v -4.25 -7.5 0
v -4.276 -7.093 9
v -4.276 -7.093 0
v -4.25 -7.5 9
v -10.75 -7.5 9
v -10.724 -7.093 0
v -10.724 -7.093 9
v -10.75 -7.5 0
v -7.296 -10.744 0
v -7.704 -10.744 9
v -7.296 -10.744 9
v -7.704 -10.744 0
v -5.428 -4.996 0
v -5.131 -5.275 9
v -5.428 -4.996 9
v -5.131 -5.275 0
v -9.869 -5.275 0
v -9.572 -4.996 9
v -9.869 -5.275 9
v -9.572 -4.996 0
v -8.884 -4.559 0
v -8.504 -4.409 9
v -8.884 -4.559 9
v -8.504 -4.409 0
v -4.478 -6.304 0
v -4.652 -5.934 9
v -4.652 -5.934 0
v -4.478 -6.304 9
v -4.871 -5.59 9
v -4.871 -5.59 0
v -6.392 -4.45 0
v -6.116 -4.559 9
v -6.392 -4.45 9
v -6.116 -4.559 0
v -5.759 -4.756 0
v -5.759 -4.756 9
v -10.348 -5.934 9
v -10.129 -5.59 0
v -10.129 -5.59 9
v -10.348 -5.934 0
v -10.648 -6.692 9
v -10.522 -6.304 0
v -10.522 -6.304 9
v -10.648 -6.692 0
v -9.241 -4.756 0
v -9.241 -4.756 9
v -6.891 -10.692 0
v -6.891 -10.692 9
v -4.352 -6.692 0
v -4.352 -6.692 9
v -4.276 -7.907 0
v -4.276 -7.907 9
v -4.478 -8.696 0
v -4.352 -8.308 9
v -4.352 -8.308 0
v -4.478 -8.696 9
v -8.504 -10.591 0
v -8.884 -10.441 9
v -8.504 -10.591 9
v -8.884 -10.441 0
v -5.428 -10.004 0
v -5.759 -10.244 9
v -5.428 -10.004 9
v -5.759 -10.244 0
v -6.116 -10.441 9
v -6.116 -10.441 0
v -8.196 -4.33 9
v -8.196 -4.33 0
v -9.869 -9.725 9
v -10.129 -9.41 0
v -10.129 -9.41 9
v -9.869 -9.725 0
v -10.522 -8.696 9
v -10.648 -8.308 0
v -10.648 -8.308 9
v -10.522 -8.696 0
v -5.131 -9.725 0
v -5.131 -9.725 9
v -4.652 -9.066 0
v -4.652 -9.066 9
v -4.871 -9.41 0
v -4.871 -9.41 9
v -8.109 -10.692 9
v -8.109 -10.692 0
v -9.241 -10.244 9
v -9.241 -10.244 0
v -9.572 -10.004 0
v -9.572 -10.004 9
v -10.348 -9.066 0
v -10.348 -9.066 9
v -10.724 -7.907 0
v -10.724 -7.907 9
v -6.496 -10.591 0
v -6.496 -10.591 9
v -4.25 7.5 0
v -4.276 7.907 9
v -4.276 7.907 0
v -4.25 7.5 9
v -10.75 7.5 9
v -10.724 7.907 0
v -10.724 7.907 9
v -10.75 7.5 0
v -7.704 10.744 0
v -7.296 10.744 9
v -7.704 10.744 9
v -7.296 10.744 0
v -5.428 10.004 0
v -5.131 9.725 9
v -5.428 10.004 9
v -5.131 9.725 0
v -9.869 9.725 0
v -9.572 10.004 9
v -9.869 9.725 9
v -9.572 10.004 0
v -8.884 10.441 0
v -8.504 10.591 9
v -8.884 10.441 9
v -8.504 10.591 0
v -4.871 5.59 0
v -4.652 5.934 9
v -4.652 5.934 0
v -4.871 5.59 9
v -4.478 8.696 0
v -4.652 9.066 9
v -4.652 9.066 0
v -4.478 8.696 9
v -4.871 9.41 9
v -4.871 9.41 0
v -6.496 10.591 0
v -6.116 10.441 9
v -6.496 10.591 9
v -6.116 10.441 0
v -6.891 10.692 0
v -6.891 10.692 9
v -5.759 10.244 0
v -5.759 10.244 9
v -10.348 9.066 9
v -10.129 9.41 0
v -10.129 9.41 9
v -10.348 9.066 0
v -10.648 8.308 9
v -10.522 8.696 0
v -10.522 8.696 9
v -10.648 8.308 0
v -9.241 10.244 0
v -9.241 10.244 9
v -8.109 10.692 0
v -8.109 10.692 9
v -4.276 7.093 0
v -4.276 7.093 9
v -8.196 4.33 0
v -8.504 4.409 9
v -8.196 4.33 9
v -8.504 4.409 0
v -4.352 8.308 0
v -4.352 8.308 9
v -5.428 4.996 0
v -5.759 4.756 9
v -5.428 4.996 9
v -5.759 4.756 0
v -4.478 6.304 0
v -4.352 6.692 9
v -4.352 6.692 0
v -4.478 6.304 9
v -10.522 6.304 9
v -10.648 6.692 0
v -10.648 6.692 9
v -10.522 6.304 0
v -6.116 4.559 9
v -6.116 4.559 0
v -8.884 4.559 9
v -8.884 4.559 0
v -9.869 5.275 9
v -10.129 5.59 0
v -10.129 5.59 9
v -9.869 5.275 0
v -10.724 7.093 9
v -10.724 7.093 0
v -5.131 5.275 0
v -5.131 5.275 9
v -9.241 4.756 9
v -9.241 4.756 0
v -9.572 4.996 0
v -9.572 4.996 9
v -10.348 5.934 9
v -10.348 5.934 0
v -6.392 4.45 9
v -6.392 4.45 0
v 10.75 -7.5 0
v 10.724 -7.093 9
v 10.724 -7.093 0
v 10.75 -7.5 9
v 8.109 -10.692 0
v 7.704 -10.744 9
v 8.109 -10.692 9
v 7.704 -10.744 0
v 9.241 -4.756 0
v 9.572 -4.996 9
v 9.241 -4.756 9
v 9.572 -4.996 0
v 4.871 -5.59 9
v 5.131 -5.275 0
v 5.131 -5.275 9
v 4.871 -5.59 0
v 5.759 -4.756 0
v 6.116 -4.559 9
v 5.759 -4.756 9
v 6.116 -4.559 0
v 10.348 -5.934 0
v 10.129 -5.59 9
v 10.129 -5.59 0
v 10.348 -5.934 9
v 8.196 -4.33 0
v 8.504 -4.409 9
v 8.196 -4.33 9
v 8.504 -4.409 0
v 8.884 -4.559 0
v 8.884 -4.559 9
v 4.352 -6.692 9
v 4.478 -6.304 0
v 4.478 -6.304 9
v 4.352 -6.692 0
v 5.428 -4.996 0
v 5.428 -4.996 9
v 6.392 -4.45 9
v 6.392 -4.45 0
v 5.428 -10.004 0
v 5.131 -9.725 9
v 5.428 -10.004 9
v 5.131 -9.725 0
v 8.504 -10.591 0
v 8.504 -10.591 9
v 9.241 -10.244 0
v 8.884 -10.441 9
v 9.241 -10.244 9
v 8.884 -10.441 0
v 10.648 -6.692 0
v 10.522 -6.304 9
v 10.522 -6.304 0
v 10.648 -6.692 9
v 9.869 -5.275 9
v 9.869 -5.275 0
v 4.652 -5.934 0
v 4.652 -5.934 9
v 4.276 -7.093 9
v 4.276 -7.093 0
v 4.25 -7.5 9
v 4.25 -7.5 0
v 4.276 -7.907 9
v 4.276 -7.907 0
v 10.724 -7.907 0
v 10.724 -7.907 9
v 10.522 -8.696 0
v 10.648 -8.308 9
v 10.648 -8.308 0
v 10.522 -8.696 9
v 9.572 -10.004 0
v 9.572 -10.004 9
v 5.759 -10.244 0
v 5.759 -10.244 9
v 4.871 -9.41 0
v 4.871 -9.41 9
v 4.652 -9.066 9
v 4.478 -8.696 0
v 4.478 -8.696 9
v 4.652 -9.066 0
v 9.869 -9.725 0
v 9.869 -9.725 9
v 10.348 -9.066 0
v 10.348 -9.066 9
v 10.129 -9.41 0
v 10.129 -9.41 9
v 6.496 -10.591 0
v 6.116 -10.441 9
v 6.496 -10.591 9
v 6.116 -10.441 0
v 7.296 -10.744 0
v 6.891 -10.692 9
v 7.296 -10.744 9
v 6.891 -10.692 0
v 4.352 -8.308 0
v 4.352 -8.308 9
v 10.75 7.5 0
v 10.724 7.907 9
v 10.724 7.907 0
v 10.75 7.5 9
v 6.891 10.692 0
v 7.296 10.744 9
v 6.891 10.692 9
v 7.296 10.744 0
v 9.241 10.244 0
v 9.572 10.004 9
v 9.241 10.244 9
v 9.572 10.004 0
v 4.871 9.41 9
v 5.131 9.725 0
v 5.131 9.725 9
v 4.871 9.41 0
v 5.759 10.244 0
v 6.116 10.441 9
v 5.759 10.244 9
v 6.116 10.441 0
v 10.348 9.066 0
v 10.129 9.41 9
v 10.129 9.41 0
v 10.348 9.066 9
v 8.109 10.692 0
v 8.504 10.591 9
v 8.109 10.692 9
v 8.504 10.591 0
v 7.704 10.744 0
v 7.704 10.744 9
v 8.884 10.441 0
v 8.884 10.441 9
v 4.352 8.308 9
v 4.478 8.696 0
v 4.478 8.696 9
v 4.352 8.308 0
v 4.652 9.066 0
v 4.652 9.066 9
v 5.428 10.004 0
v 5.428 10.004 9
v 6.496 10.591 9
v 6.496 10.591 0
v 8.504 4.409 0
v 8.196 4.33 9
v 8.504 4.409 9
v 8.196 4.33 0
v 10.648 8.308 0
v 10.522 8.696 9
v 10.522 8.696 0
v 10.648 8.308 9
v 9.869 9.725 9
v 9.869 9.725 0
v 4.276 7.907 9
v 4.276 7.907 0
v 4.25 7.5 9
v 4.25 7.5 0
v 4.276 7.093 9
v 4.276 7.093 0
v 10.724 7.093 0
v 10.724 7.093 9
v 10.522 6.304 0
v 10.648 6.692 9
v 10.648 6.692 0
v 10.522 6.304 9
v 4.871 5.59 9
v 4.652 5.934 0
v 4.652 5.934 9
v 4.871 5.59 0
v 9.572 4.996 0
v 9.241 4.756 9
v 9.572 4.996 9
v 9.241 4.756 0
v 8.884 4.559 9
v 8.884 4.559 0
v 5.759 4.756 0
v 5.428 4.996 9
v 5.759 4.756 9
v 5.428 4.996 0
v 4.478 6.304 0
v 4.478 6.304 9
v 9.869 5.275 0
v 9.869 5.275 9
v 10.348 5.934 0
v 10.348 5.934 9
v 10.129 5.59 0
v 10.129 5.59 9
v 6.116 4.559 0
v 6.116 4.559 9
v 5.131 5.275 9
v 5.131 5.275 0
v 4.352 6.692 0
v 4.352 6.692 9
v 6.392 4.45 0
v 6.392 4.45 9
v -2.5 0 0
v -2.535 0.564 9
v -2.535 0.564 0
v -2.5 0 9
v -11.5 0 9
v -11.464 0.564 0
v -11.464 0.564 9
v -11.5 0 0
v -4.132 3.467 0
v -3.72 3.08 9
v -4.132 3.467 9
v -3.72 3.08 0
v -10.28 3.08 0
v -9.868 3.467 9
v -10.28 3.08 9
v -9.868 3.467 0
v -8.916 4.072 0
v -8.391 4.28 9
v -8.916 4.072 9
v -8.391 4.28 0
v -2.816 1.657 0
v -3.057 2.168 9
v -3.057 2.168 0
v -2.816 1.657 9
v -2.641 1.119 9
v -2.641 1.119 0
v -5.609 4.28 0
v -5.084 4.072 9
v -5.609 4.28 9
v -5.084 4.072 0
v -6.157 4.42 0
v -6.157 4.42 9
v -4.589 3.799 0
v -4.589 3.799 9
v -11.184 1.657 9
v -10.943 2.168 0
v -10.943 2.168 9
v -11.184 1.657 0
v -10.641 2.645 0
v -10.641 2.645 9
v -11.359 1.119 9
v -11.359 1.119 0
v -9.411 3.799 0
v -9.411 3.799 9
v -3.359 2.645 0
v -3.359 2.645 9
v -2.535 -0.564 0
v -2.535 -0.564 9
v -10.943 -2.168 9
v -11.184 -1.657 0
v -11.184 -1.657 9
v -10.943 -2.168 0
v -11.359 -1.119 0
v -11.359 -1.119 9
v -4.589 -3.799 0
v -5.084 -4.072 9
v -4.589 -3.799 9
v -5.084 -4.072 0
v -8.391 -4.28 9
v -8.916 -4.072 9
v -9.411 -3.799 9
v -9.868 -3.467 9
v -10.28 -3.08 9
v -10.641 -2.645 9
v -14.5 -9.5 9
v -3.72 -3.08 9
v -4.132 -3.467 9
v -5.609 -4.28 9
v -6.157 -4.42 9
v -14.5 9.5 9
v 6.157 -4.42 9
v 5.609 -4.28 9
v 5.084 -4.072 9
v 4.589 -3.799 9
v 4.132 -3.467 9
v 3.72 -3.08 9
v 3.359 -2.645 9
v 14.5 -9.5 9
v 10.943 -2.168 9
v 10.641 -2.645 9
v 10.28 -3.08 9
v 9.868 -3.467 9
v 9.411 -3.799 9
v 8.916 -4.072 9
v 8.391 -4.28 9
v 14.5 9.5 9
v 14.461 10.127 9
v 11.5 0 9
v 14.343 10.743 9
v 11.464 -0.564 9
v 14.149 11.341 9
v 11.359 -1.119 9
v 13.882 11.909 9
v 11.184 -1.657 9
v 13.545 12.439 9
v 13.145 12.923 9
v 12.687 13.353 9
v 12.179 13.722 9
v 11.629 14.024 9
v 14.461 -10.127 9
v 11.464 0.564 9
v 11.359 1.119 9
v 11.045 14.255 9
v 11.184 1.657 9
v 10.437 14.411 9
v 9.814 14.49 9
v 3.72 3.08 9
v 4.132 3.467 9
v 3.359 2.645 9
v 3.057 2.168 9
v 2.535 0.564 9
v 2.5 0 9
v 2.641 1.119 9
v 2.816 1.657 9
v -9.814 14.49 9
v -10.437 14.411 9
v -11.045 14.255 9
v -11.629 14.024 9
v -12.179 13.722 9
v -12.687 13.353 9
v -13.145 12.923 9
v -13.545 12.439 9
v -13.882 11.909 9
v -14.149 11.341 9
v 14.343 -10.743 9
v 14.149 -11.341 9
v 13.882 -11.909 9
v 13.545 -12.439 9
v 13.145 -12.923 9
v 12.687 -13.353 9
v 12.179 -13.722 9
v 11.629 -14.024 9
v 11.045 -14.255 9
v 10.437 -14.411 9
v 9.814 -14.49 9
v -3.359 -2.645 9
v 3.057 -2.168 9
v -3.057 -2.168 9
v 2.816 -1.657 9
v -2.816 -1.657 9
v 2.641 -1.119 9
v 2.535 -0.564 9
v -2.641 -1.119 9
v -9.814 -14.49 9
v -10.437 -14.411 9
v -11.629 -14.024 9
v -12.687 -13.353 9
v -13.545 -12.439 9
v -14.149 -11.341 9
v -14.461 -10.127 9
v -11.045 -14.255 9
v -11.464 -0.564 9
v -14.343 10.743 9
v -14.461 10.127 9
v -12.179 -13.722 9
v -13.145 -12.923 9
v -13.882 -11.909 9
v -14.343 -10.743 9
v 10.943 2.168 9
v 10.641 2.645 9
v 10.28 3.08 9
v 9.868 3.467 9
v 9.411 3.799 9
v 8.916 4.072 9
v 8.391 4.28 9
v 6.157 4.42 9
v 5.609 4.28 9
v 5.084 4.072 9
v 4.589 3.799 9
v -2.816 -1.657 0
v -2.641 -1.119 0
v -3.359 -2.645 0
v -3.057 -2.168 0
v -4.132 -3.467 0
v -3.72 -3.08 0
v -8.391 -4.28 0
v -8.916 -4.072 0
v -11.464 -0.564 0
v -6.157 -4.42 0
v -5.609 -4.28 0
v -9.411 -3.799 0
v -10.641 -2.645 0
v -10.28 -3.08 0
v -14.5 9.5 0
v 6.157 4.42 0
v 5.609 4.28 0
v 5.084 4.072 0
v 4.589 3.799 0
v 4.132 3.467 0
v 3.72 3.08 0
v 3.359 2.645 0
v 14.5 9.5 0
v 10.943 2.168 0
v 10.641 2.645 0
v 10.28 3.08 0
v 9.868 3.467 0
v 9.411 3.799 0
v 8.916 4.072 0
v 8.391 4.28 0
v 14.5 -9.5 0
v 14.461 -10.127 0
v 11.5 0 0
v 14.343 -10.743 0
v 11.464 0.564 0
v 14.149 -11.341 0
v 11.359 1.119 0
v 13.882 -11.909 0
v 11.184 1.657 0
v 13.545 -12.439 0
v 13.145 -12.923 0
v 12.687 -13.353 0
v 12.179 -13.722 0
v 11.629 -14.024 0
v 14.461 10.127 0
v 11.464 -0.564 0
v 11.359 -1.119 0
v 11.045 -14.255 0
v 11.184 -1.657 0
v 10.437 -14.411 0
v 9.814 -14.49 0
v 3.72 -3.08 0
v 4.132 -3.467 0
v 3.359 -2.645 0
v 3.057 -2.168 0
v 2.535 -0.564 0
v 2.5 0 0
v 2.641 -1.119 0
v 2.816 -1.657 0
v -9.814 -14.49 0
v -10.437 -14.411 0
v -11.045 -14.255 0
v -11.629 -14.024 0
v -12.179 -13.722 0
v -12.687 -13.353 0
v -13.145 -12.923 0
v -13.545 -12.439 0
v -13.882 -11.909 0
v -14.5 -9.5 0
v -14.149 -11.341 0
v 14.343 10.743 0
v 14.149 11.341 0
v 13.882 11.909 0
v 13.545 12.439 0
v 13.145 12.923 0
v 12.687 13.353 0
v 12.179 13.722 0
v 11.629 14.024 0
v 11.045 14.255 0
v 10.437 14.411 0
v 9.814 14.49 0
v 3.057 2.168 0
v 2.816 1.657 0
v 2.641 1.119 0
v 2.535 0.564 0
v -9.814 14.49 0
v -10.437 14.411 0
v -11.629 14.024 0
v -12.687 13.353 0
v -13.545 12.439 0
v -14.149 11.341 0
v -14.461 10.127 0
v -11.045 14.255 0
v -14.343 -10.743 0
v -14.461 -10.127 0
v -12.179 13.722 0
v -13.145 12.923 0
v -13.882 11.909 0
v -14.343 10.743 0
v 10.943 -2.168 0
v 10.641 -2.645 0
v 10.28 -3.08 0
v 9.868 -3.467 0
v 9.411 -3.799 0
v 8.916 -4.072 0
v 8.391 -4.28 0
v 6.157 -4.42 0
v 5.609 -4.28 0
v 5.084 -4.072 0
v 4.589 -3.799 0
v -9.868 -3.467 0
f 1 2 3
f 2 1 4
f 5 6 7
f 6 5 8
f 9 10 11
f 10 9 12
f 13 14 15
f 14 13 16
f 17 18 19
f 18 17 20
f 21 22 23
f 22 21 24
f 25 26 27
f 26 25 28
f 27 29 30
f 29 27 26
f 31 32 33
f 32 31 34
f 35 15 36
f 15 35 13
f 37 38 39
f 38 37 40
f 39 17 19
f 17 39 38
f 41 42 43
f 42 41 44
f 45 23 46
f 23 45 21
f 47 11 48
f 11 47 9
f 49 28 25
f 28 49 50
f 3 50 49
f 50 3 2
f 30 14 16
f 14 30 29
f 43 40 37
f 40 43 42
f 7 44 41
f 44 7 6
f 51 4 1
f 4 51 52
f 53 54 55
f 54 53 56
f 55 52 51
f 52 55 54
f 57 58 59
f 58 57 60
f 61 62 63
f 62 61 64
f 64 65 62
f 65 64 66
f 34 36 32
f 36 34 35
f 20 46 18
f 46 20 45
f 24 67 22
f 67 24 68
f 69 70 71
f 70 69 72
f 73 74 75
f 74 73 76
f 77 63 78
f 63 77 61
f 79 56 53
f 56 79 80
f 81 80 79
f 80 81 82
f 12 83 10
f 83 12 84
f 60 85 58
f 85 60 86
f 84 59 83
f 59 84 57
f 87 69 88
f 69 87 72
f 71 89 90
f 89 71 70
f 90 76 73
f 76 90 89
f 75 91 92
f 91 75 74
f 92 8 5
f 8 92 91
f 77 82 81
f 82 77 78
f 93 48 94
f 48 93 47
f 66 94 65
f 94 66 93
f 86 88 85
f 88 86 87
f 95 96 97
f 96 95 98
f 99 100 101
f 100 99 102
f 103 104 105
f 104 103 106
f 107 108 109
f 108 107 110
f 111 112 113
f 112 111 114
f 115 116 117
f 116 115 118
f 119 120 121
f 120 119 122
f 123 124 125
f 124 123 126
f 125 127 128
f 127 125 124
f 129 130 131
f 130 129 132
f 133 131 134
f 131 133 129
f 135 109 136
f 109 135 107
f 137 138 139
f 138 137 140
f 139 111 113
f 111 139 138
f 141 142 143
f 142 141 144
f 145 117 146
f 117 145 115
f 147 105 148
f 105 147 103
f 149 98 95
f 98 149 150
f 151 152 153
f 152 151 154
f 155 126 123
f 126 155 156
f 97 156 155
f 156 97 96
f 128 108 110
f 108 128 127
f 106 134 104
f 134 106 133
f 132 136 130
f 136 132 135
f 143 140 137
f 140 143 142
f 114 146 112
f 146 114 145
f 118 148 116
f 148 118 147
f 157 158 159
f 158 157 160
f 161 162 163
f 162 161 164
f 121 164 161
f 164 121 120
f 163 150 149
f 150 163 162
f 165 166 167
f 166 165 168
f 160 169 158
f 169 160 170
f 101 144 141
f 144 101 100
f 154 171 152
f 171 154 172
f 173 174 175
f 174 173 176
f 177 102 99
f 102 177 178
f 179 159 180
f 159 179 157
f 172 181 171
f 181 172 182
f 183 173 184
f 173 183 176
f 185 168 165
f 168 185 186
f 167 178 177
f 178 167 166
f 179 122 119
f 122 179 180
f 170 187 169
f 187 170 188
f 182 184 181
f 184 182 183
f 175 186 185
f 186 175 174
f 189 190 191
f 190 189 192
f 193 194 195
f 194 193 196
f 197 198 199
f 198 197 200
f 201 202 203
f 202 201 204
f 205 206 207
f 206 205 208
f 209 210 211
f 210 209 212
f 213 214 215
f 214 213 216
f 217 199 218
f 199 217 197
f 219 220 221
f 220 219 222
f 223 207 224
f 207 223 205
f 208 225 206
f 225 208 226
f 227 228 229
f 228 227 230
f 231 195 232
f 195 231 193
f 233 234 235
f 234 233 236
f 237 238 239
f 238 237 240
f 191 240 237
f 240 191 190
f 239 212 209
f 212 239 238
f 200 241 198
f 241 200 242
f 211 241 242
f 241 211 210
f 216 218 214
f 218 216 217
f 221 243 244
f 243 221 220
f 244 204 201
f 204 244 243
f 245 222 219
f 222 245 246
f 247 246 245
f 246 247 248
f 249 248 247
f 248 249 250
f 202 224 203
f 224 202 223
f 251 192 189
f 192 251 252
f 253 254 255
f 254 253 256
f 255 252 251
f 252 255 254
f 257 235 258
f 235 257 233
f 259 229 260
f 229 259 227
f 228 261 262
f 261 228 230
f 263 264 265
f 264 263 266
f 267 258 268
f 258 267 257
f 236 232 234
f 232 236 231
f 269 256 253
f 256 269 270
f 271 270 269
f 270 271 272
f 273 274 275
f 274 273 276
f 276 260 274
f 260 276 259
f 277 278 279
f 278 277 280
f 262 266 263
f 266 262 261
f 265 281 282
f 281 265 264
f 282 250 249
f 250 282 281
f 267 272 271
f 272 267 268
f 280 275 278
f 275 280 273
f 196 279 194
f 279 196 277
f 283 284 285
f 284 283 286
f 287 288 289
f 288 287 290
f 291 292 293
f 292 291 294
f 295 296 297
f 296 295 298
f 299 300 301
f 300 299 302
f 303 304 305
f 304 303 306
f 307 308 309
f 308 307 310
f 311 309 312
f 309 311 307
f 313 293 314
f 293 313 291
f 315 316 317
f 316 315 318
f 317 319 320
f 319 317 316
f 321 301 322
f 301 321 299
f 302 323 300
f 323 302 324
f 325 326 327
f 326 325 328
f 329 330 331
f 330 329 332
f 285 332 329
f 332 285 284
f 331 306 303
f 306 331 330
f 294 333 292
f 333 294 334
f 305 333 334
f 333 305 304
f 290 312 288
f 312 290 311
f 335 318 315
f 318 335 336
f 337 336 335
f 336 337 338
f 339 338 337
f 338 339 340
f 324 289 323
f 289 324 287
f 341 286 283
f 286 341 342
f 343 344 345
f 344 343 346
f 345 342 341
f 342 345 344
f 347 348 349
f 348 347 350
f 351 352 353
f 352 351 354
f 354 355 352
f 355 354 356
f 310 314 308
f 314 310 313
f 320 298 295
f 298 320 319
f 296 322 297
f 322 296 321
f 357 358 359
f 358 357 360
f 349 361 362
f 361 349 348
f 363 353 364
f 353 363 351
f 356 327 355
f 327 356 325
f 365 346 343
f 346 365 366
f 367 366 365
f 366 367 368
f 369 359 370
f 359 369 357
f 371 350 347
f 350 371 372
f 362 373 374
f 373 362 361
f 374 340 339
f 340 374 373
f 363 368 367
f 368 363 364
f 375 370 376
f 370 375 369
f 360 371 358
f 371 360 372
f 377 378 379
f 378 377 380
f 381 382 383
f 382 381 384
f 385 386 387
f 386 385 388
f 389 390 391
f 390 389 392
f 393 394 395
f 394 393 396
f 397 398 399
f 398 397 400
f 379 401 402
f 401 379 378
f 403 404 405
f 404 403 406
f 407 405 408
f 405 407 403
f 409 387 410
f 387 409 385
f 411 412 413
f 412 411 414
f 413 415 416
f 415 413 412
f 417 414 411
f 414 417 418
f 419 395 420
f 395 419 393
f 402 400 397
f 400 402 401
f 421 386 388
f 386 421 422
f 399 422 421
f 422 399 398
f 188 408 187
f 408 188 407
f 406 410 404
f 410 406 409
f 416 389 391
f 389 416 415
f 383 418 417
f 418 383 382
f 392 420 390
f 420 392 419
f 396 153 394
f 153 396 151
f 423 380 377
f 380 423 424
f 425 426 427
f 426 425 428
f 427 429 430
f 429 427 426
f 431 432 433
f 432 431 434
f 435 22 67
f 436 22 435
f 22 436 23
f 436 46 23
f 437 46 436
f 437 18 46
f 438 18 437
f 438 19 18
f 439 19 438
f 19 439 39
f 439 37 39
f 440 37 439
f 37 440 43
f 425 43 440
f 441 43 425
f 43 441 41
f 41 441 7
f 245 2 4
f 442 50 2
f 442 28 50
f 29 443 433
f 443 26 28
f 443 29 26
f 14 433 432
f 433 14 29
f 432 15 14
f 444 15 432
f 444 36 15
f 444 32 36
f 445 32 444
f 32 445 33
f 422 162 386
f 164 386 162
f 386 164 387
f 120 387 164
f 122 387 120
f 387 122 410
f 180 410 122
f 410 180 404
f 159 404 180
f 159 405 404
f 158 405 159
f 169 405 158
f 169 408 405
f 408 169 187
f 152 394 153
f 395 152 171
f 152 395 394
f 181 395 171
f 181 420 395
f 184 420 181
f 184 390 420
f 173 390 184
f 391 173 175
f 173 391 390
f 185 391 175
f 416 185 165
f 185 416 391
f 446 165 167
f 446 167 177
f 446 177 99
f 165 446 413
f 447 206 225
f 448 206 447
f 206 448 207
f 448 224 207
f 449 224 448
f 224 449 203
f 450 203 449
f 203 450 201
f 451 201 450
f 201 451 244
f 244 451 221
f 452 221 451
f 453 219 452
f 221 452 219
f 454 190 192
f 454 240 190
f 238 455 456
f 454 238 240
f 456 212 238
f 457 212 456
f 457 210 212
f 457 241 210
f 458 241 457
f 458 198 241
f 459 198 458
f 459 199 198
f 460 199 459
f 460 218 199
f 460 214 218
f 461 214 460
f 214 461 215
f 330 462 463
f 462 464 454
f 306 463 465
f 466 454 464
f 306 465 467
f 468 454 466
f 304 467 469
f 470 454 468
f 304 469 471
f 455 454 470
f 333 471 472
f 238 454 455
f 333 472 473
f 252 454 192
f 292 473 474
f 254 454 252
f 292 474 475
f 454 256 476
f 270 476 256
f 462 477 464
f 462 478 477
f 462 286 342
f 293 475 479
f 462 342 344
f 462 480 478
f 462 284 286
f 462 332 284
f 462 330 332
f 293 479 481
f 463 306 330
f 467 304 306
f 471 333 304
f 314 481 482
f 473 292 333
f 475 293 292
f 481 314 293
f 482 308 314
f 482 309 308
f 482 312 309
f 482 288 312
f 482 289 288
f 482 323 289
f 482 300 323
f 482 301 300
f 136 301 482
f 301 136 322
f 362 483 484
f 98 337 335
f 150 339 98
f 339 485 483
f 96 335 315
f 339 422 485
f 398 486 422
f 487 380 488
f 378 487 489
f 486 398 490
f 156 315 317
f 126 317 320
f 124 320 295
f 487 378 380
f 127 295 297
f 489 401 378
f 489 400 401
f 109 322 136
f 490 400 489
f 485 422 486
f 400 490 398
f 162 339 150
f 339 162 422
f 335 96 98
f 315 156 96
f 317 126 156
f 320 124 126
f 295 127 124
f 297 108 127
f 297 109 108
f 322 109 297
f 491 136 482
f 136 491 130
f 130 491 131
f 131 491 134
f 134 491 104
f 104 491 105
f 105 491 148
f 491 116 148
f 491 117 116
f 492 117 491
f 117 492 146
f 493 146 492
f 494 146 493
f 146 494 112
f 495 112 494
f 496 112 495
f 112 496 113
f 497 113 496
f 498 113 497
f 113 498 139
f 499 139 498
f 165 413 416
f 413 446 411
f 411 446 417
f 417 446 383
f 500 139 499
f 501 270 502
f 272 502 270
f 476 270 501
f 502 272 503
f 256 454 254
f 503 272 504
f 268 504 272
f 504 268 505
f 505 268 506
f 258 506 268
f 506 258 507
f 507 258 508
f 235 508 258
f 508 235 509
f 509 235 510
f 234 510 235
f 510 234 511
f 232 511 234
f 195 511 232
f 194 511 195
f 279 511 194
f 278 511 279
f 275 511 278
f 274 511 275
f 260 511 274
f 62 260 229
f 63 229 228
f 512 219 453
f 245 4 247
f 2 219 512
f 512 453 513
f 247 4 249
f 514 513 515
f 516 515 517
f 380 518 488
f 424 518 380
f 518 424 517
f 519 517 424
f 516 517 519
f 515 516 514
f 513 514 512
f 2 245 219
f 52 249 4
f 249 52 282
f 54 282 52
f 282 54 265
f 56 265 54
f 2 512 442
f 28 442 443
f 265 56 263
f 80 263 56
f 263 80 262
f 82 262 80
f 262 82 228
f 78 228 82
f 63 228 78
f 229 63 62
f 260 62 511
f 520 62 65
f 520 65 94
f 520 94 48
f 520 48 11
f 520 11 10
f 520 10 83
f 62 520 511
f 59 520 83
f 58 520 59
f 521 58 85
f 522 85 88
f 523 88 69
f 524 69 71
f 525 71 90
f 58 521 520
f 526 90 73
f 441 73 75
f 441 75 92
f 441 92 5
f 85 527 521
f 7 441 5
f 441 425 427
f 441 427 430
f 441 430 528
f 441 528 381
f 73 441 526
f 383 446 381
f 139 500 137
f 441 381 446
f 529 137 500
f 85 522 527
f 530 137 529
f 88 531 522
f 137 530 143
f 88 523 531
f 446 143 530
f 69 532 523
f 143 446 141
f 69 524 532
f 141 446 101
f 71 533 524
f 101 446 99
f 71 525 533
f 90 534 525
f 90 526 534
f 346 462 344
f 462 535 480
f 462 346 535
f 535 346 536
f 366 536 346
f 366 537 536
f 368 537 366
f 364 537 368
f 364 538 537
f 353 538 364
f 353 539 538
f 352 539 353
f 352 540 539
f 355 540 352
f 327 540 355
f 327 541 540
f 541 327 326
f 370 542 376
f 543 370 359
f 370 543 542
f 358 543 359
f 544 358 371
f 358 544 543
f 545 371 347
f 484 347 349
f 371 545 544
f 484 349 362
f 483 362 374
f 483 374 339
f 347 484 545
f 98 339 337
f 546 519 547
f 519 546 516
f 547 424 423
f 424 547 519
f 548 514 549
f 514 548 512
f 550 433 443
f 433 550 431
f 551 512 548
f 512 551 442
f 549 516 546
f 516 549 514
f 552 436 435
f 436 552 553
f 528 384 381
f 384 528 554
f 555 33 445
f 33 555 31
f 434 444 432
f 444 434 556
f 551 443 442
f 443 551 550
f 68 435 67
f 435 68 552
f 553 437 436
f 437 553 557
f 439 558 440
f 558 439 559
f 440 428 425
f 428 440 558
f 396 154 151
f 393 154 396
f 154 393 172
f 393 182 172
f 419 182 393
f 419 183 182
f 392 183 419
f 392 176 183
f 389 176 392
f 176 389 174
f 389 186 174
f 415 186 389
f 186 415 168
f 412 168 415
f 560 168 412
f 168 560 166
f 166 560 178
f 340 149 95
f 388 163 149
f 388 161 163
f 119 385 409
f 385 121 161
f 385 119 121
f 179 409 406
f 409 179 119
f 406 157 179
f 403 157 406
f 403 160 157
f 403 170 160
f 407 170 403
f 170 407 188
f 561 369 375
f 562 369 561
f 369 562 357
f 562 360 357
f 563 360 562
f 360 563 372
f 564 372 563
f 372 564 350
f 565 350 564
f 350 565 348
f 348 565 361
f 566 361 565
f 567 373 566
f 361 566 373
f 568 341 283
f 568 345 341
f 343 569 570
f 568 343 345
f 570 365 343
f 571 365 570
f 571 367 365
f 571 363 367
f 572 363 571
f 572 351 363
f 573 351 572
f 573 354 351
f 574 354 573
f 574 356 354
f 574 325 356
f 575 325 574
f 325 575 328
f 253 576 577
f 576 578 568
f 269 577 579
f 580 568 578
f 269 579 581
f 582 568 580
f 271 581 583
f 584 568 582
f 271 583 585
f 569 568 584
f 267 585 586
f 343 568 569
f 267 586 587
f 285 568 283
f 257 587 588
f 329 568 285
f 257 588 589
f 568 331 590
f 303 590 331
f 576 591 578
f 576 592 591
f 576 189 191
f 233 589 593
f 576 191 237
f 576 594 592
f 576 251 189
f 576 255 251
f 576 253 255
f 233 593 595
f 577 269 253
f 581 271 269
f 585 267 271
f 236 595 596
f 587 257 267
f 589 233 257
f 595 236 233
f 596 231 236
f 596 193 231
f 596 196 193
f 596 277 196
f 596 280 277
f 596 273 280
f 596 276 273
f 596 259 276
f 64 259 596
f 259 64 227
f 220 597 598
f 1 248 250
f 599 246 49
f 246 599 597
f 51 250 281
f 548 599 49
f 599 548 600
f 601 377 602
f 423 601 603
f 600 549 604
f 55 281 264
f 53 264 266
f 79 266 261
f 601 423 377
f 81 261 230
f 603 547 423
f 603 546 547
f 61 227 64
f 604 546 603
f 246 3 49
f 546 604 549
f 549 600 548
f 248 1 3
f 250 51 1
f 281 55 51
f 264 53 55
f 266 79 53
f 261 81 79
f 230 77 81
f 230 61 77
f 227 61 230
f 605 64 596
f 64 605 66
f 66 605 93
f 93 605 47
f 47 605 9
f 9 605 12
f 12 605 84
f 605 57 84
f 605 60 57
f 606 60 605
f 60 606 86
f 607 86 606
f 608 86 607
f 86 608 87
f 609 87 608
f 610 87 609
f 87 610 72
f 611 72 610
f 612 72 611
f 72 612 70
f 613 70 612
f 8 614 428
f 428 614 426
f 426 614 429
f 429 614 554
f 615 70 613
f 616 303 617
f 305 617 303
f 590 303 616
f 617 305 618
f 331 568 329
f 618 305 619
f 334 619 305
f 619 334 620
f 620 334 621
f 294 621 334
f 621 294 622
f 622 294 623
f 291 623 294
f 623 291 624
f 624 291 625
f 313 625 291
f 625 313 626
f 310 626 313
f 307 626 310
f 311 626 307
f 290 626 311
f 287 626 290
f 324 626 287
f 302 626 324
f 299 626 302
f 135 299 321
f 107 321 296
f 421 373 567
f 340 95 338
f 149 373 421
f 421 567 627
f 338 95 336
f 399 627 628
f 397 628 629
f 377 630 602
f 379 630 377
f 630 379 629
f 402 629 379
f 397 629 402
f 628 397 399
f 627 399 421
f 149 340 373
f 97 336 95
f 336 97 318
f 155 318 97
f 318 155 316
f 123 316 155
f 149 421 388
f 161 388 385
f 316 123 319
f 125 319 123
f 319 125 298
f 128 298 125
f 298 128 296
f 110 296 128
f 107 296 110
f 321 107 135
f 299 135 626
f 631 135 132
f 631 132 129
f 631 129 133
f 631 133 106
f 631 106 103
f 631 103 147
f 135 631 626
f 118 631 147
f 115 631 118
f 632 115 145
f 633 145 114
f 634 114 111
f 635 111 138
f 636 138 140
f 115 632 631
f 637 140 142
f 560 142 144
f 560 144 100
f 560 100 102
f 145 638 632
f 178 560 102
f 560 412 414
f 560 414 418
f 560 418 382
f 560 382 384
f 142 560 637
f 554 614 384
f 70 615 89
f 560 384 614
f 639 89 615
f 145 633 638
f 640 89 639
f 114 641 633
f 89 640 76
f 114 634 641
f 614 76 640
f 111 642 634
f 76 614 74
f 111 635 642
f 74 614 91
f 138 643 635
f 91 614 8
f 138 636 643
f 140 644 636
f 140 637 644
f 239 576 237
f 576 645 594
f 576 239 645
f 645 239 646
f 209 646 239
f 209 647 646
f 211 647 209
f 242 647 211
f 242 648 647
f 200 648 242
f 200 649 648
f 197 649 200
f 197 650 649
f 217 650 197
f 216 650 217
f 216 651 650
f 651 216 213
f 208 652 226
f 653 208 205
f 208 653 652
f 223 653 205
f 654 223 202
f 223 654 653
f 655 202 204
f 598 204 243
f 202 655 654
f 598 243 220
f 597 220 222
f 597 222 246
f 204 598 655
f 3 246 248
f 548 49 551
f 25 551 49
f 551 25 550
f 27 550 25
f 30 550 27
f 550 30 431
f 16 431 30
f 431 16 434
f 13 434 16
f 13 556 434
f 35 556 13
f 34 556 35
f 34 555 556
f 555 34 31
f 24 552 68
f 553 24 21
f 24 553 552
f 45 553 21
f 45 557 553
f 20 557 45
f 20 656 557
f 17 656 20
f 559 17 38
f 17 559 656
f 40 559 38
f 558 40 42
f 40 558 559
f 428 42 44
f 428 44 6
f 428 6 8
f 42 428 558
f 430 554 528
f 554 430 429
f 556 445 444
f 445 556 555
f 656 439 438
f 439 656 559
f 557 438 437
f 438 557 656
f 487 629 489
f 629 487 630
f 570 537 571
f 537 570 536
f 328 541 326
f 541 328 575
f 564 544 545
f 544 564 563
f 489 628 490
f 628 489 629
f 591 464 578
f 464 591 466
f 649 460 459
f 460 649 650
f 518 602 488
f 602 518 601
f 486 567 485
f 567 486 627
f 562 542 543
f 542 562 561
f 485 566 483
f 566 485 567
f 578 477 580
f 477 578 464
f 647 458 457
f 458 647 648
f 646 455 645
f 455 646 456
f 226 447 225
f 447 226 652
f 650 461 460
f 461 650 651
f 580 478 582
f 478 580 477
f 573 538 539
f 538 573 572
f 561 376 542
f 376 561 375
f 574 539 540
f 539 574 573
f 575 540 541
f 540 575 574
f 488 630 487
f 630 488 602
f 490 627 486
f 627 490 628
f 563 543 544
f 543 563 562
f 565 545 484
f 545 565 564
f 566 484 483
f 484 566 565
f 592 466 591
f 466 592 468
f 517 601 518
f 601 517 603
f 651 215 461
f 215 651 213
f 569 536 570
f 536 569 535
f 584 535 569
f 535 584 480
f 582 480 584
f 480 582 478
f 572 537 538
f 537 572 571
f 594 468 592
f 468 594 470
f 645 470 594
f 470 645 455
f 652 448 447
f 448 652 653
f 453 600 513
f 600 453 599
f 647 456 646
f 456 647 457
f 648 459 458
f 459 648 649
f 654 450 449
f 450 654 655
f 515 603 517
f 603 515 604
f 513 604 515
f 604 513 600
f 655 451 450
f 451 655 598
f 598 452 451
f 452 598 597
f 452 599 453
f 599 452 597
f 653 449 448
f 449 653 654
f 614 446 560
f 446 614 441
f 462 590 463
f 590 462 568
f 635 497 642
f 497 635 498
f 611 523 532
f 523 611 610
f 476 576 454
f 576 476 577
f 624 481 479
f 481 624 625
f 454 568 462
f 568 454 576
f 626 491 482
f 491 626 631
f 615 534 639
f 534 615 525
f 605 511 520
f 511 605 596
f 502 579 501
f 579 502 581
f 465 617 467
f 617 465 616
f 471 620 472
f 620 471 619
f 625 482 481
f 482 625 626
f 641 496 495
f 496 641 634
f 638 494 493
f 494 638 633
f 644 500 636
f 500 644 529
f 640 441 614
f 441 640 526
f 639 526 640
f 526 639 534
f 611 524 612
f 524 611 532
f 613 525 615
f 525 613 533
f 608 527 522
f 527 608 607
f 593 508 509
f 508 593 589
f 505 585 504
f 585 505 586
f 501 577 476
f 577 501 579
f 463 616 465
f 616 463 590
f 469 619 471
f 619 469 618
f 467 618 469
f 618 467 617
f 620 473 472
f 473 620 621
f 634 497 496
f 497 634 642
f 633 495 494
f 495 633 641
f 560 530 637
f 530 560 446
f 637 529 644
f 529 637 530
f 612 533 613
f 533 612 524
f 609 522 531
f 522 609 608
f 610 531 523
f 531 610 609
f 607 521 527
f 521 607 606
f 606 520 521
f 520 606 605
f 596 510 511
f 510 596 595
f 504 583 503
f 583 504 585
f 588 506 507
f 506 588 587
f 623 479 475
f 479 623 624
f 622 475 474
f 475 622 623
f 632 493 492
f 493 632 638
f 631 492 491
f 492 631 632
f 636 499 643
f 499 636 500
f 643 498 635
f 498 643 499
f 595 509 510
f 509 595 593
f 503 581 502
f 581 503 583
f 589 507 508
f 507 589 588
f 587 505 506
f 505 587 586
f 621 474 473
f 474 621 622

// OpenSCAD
$fn = 50;


difference() {
	union() {
		hull() {
			translate(v = [-9.5000000000, 9.5000000000, 0]) {
				cylinder(h = 9, r = 5);
			}
			translate(v = [9.5000000000, 9.5000000000, 0]) {
				cylinder(h = 9, r = 5);
			}
			translate(v = [-9.5000000000, -9.5000000000, 0]) {
				cylinder(h = 9, r = 5);
			}
			translate(v = [9.5000000000, -9.5000000000, 0]) {
				cylinder(h = 9, r = 5);
			}
		}
	}
	union() {
		#translate(v = [-7.5000000000, -7.5000000000, -100.0000000000]) {
			cylinder(h = 200, r = 3.2500000000);
		}
		#translate(v = [-7.5000000000, 7.5000000000, -100.0000000000]) {
			cylinder(h = 200, r = 3.2500000000);
		}
		#translate(v = [7.5000000000, -7.5000000000, -100.0000000000]) {
			cylinder(h = 200, r = 3.2500000000);
		}
		#translate(v = [7.5000000000, 7.5000000000, -100.0000000000]) {
			cylinder(h = 200, r = 3.2500000000);
		}
		#translate(v = [-7.0000000000, 0, 0]) {
			cylinder(h = 9, r = 4.5000000000);
		}
		#translate(v = [7.0000000000, 0, 0]) {
			cylinder(h = 9, r = 4.5000000000);
		}
	}
}
